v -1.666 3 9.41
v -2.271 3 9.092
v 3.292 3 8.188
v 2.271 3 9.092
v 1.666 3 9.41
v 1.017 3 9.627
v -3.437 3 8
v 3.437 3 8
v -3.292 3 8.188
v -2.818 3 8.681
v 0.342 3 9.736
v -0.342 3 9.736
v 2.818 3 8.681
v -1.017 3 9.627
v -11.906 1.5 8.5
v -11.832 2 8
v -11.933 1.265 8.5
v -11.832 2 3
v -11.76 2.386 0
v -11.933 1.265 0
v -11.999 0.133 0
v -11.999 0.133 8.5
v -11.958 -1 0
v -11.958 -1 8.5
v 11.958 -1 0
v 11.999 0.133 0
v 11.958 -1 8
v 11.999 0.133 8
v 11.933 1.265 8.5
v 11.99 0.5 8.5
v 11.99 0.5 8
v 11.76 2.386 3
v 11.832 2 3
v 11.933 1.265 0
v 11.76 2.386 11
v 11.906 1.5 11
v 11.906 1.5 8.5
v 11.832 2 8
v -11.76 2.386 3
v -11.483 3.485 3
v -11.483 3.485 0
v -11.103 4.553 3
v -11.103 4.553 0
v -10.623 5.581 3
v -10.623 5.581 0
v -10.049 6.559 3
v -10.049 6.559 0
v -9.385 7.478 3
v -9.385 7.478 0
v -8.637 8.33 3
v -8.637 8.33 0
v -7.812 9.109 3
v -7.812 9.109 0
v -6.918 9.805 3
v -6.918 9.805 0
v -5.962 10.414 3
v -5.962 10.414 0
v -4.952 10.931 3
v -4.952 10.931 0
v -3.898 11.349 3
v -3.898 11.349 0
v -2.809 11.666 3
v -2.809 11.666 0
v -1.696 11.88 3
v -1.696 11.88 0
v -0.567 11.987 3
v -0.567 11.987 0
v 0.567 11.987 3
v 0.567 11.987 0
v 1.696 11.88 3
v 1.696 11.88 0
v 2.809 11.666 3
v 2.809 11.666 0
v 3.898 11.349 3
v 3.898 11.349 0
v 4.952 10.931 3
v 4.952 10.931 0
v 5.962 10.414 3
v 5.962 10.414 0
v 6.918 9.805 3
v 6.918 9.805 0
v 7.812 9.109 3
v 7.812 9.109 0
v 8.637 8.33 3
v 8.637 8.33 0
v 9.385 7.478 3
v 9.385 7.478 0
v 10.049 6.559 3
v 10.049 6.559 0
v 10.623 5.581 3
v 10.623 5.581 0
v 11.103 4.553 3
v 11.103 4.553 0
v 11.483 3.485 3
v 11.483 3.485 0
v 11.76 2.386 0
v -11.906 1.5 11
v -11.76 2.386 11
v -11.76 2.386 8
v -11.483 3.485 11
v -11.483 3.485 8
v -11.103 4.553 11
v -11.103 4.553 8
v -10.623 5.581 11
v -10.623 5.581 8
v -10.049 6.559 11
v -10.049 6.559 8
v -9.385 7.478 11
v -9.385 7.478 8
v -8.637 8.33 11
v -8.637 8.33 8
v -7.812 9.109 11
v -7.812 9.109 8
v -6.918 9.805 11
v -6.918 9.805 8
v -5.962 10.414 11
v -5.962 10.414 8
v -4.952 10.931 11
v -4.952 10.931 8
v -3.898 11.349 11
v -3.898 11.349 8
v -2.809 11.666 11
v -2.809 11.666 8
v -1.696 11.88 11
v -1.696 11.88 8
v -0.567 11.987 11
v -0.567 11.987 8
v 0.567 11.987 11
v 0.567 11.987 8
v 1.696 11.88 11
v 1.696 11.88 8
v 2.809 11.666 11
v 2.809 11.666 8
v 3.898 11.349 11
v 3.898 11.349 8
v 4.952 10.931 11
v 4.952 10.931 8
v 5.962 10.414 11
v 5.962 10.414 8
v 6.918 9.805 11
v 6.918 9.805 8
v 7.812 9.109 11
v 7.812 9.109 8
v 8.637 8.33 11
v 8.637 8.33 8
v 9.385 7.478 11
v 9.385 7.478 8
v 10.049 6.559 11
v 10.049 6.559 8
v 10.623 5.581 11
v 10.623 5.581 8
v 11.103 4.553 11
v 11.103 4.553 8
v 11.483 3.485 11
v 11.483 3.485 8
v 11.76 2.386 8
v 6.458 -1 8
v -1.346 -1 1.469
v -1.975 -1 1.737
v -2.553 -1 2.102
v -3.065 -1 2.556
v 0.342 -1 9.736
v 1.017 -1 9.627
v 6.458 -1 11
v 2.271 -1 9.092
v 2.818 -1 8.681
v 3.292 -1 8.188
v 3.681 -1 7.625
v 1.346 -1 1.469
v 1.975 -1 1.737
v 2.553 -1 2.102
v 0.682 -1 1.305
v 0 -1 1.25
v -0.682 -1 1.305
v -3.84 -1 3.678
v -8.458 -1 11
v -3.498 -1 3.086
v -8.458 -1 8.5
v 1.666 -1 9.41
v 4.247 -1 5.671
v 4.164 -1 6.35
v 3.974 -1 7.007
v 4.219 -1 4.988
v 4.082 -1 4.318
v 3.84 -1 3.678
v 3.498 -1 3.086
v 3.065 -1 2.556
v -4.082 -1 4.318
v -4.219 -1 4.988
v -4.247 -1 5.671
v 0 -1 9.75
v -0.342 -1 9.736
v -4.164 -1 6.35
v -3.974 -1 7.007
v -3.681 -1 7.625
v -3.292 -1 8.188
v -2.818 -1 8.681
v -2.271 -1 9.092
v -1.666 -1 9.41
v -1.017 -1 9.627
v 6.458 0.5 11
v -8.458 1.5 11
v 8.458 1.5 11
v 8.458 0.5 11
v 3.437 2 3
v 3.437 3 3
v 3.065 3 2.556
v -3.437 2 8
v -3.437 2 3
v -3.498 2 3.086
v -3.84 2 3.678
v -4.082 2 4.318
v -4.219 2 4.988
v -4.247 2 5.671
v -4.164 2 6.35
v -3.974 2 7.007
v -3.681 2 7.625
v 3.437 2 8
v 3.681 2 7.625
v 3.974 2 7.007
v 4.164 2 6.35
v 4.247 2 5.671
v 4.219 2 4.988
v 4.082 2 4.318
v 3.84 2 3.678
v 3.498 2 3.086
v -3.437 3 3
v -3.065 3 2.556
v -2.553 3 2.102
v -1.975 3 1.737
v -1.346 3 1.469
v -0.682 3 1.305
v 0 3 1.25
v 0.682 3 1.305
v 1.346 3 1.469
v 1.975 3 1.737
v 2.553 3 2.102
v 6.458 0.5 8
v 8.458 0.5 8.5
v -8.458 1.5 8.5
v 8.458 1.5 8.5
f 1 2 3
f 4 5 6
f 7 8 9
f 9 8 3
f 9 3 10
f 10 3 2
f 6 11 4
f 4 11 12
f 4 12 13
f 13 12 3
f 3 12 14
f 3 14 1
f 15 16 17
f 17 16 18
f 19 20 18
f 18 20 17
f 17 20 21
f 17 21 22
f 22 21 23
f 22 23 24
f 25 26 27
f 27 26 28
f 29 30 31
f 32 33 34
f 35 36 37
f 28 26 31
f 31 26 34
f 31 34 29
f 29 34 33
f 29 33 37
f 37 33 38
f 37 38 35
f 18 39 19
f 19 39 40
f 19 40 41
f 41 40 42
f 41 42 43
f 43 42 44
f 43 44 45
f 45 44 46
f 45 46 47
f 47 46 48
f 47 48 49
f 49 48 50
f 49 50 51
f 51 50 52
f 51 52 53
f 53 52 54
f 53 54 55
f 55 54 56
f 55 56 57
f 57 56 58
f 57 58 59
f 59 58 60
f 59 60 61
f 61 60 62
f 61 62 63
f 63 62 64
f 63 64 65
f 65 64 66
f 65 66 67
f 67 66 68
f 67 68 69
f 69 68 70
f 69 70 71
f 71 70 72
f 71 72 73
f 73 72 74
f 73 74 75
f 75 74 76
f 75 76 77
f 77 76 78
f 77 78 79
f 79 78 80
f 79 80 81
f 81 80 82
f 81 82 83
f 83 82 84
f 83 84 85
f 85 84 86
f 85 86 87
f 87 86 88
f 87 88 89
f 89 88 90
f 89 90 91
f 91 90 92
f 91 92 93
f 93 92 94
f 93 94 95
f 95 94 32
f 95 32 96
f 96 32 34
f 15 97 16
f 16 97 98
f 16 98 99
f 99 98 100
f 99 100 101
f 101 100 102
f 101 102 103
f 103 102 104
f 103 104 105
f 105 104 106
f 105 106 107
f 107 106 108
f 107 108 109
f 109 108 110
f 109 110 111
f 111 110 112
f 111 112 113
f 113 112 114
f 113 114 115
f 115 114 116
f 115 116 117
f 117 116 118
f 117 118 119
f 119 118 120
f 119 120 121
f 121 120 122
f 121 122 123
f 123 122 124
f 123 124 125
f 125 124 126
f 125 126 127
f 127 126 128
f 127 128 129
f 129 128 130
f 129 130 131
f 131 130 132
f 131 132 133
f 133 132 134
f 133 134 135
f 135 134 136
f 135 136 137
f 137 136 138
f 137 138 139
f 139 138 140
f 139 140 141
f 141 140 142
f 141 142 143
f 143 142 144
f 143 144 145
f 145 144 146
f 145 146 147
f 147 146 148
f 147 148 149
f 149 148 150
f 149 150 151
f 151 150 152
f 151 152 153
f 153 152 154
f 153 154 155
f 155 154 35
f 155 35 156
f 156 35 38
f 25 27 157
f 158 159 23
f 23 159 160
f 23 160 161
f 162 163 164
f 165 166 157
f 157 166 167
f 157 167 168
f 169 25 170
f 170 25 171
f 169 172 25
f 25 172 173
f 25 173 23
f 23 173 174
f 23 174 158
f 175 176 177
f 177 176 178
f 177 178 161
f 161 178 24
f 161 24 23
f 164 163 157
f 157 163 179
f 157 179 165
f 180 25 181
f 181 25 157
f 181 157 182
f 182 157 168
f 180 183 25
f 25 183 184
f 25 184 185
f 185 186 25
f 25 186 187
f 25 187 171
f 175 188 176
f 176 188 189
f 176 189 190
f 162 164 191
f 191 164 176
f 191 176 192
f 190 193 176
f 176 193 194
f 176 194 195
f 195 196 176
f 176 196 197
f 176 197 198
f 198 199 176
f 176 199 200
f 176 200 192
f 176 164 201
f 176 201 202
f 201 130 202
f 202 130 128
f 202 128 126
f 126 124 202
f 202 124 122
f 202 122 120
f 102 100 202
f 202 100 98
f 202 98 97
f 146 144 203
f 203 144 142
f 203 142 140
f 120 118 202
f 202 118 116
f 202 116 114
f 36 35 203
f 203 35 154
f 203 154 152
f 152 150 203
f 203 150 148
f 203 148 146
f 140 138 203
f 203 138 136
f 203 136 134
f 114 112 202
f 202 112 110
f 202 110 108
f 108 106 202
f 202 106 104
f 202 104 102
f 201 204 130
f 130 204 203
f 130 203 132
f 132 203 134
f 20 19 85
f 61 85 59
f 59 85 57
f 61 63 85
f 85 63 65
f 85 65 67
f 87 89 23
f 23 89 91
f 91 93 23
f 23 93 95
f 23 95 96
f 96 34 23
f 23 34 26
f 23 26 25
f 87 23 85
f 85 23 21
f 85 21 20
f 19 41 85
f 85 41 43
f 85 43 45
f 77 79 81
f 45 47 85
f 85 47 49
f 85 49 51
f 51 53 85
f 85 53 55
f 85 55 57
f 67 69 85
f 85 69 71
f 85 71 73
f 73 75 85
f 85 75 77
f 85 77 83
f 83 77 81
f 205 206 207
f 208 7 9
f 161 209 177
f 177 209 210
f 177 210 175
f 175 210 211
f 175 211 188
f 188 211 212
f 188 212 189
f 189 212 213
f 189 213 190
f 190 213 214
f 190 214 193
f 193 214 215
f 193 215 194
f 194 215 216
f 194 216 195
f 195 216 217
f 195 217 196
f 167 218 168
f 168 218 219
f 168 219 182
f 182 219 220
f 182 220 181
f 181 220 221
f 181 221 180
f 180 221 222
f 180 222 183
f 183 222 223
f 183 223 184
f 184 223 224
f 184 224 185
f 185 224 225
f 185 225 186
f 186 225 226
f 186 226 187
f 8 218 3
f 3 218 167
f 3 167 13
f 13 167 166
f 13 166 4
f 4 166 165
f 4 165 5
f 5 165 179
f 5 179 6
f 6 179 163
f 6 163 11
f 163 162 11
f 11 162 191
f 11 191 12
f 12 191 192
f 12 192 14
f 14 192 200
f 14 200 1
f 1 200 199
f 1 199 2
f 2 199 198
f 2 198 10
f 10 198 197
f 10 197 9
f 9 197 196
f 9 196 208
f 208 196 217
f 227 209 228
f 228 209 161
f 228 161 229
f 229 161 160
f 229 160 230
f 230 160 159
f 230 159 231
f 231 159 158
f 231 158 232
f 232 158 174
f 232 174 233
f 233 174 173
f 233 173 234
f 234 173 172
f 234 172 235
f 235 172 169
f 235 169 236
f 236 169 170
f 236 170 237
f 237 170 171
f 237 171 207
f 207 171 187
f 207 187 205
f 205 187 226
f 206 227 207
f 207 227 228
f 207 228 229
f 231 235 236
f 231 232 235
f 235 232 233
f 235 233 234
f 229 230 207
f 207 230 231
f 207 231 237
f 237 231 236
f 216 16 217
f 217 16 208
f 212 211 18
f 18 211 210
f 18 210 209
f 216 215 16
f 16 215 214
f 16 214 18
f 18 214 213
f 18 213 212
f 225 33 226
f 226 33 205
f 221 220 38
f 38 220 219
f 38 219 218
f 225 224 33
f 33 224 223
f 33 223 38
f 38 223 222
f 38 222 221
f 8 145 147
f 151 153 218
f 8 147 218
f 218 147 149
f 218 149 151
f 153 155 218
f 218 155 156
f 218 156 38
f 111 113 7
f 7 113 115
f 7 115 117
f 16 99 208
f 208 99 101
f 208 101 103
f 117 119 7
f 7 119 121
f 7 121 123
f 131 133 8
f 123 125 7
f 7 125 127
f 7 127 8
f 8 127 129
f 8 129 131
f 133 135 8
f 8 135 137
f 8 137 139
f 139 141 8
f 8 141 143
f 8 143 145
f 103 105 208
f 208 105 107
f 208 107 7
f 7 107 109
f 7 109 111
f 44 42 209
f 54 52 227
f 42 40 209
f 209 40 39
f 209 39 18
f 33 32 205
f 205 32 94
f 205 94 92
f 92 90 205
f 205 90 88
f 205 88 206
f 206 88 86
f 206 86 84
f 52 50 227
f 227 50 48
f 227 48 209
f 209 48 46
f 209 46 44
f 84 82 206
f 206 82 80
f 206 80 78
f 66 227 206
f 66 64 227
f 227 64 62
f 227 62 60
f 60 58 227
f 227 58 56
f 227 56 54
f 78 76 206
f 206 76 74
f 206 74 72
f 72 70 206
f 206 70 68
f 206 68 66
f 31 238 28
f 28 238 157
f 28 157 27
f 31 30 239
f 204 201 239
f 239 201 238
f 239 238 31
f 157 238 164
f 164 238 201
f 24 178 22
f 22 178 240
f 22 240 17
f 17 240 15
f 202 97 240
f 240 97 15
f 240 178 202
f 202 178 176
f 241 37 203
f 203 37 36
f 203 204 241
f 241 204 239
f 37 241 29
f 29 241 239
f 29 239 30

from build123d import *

# Parameters (mm, degrees)
BOSS_EXTRUDE1_DEPTH     = 11
CUT_EXTRUDE1_START      = 3
SKETCH2_R               = 4.25
CUT_EXTRUDE1_DEPTH      = 4
SKETCH3_W               = 5
SKETCH3_H               = 13.464597237
CUT_EXTRUDE2_DEPTH      = 13
CUT_EXTRUDE2_DEPTH_BACK = 13
SKETCH4_W               = 7.273345506
SKETCH4_H               = 1.5
CUT_EXTRUDE3_DEPTH      = 3
SKETCH5_W               = 4.264362618
SKETCH5_H               = 2.5
CUT_EXTRUDE4_DEPTH      = 2.5
SKETCH6_W               = 5.237267166
SKETCH6_H               = 2.5
CUT_EXTRUDE5_DEPTH      = 2.5


with BuildPart() as part:
    # Sketch1 → Boss-Extrude1 (new body)
    with BuildSketch(Plane.XY):
        with BuildLine():
            Line((-11.958260743, -1), (11.958260743, -1))
            ThreePointArc((11.958260743, -1), (0, 12), (-11.958260743, -1))
        make_face()
    extrude(amount=BOSS_EXTRUDE1_DEPTH)

    # Sketch2 → Cut-Extrude1 (cut)
    with BuildSketch(Plane.XZ.offset(-2).offset(CUT_EXTRUDE1_START)):
        with Locations((0, 5.5)):
            Circle(SKETCH2_R)
    extrude(amount=-CUT_EXTRUDE1_DEPTH, mode=Mode.SUBTRACT)

    # Sketch3 → Cut-Extrude2 (cut, two sides)
    with BuildSketch(Plane(origin=(0, 0, 0), x_dir=(0, 0, -1), z_dir=(1, 0, 0))) as cut_extrude2_sk:
        with Locations((-5.5, 8.732298618)):
            Rectangle(SKETCH3_W, SKETCH3_H)
    extrude(amount=CUT_EXTRUDE2_DEPTH, mode=Mode.SUBTRACT)
    extrude(cut_extrude2_sk.sketch, amount=-CUT_EXTRUDE2_DEPTH_BACK, mode=Mode.SUBTRACT)

    # Sketch4 → Cut-Extrude3 (cut)
    with BuildSketch(Plane.XY.offset(11)):
        with Locations((10.094933496, -0.25)):
            Rectangle(SKETCH4_W, SKETCH4_H)
    extrude(amount=-CUT_EXTRUDE3_DEPTH, mode=Mode.SUBTRACT)

    # Sketch5 → Cut-Extrude4 (cut)
    with BuildSketch(Plane.XY.offset(11)):
        with Locations((-10.590442052, 0.25)):
            Rectangle(SKETCH5_W, SKETCH5_H)
    extrude(amount=-CUT_EXTRUDE4_DEPTH, mode=Mode.SUBTRACT)

    # Sketch6 → Cut-Extrude5 (cut)
    with BuildSketch(Plane.XY.offset(11)):
        with Locations((11.076894326, 0.25)):
            Rectangle(SKETCH6_W, SKETCH6_H)
    extrude(amount=-CUT_EXTRUDE5_DEPTH, mode=Mode.SUBTRACT)


solid = part.part
